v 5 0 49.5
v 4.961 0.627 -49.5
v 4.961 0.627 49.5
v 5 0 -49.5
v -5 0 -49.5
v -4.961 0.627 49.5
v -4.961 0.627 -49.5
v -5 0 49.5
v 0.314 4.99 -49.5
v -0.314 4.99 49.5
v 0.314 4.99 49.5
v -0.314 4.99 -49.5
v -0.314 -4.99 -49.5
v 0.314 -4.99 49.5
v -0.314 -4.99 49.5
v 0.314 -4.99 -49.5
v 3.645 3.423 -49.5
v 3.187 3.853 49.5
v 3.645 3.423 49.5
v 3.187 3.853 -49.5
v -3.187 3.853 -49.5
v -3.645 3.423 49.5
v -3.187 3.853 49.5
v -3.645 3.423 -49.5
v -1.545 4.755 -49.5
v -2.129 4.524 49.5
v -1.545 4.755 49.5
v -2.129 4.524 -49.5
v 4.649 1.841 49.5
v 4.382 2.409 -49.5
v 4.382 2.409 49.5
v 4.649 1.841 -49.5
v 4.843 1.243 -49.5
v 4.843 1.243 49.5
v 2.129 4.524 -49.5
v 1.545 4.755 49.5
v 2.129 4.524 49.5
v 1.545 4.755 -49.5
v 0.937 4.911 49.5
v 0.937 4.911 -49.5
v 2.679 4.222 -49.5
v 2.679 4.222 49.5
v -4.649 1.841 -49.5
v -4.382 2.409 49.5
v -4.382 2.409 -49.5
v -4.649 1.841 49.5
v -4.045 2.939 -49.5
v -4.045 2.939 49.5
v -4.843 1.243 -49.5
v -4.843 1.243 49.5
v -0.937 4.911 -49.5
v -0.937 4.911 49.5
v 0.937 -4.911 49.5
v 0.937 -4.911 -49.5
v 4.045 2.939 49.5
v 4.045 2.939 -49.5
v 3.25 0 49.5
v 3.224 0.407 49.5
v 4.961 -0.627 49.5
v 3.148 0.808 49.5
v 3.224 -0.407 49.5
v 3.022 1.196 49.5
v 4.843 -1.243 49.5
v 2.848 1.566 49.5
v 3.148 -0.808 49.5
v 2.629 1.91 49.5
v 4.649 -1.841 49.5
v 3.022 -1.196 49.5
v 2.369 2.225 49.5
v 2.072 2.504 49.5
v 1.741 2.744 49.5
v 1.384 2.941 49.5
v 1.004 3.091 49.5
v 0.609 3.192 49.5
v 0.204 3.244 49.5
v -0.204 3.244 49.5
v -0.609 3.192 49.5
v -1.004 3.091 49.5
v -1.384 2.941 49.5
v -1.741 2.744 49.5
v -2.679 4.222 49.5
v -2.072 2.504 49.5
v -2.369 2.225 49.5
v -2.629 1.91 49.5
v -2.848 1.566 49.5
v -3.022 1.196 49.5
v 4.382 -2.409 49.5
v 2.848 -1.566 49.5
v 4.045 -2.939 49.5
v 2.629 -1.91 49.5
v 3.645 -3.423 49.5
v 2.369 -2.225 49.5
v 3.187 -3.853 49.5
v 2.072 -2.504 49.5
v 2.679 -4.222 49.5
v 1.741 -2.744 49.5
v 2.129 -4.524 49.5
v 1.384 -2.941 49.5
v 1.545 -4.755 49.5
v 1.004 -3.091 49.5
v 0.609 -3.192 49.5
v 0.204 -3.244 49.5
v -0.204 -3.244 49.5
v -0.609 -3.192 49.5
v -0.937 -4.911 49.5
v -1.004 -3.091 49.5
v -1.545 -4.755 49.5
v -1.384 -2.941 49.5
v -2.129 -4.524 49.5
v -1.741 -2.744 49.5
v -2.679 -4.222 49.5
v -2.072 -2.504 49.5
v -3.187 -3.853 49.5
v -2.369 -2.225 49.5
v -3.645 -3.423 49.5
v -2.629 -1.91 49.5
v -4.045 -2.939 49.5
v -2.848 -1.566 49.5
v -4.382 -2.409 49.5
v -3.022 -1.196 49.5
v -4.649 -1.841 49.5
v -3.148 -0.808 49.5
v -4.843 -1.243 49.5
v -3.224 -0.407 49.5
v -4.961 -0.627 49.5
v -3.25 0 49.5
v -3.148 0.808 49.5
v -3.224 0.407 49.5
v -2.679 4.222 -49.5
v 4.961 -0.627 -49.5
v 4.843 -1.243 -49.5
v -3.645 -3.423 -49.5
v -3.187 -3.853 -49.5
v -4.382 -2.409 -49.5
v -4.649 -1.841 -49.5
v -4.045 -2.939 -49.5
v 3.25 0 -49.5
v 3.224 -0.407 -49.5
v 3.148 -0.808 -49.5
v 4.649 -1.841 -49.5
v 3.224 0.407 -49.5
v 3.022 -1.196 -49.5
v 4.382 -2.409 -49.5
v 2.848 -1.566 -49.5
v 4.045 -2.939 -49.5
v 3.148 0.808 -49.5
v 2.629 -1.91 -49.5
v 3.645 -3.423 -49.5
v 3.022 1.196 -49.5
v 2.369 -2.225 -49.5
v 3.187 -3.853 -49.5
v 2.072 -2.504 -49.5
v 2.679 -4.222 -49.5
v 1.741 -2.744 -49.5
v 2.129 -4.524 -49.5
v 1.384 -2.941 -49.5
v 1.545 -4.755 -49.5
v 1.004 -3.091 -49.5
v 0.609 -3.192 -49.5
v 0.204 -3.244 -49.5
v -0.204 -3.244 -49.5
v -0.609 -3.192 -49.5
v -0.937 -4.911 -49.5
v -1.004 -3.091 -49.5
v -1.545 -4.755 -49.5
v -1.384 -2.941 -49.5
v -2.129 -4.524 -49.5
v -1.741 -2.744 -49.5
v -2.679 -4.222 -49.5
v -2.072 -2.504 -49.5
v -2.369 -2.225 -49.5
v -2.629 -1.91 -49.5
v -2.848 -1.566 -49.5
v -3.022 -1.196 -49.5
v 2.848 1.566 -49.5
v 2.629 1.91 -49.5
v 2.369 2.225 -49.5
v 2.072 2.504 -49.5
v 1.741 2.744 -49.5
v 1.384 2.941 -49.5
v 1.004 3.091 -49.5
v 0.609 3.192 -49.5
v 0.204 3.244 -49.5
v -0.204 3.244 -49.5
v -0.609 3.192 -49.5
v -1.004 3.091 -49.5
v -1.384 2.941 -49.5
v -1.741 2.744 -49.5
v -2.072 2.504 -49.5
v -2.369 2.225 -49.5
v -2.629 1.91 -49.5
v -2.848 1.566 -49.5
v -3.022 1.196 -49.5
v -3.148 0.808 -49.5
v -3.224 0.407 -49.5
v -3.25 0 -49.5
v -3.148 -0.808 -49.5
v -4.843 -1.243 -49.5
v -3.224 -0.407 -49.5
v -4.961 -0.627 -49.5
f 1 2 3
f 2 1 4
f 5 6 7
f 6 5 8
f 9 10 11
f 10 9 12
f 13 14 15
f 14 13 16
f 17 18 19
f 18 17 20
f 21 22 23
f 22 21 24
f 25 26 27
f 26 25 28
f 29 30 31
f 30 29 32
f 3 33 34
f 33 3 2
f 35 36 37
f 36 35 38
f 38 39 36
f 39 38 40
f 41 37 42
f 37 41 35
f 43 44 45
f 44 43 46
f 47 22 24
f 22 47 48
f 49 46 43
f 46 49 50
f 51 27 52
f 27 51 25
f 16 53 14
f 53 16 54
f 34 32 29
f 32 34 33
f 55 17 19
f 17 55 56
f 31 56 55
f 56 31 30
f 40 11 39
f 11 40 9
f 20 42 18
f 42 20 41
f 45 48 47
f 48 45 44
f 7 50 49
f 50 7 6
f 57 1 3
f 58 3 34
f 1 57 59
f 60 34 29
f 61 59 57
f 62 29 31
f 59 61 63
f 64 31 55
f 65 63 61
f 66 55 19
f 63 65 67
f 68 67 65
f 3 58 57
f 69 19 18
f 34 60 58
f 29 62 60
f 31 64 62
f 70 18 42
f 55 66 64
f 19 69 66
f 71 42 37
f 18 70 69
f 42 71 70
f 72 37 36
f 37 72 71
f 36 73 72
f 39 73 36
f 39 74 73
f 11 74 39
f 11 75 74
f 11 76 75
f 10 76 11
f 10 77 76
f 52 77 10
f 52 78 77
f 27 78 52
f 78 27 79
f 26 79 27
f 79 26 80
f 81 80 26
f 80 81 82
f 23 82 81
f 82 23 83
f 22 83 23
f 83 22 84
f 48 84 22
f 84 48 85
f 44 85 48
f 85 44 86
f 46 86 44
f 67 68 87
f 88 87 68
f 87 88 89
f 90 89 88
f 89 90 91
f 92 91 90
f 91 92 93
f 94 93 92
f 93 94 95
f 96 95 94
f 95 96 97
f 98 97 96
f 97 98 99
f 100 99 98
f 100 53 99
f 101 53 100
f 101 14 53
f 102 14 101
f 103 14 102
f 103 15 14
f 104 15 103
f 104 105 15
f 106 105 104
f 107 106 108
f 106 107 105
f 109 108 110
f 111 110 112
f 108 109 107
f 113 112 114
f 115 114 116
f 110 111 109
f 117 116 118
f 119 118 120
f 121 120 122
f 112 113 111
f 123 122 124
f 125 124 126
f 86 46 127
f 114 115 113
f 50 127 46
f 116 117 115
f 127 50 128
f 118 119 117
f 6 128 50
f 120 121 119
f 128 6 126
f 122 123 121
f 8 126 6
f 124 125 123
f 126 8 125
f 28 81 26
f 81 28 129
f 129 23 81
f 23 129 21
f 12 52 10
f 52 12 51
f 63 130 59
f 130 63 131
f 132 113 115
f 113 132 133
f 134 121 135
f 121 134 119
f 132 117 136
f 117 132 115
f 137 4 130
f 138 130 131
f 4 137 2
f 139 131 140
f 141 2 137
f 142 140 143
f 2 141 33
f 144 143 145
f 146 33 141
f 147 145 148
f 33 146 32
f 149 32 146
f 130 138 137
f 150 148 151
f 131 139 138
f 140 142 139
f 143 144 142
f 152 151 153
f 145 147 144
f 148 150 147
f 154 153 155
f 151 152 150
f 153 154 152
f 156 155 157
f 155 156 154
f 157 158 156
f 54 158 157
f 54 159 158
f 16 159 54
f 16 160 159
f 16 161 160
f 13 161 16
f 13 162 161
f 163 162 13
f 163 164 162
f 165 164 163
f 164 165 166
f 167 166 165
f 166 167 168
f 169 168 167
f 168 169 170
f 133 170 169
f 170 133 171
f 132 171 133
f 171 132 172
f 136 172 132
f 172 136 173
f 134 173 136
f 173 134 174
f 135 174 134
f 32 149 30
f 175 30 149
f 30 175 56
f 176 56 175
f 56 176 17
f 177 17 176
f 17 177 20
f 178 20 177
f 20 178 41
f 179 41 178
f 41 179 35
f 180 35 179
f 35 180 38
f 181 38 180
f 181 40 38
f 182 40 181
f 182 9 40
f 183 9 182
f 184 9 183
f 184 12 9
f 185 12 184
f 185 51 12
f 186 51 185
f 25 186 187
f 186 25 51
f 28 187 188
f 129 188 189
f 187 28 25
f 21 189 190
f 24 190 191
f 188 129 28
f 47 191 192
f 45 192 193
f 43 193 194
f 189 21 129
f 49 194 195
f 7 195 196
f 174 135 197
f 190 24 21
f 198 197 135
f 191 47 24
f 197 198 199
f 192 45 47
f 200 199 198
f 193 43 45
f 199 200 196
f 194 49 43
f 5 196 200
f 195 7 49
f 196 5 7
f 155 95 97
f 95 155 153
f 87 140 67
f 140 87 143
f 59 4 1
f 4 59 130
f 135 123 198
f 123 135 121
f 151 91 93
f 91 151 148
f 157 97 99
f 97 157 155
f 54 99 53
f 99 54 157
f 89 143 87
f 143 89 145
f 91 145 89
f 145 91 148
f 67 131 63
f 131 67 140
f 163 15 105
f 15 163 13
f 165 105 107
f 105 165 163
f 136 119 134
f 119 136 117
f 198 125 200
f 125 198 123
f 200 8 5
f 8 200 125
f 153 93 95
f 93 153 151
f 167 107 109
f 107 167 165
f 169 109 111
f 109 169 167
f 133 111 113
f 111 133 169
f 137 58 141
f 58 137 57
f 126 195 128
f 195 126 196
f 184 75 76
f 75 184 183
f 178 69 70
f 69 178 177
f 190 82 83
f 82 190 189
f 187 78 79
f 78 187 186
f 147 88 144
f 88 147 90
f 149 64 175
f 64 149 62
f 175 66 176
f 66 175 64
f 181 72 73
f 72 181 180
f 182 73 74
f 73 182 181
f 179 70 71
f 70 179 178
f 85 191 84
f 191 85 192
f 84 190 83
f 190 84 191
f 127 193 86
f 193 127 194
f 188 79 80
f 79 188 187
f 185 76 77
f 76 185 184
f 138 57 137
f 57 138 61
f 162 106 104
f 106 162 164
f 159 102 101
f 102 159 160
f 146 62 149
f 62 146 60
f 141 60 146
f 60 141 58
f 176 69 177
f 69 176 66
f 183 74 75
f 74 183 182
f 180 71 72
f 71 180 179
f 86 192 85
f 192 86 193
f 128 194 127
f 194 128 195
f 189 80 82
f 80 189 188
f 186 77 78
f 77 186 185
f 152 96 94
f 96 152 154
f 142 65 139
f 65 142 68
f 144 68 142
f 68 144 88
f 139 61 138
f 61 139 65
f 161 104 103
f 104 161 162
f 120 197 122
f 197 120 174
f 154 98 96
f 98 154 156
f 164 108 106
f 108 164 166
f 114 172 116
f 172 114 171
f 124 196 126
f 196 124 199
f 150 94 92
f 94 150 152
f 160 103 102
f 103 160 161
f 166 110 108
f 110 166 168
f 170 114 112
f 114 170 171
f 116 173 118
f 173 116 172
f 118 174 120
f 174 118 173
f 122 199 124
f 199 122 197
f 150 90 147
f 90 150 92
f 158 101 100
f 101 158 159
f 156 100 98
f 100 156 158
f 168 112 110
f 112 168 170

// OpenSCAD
$fn = 50;


difference() {
	union() {
		translate(v = [0, 0, -49.5000000000]) {
			cylinder(h = 99, r = 5.0000000000);
		}
	}
	union() {
		translate(v = [0, 0, -100.0000000000]) {
			cylinder(h = 200, r = 3.2500000000);
		}
	}
}
